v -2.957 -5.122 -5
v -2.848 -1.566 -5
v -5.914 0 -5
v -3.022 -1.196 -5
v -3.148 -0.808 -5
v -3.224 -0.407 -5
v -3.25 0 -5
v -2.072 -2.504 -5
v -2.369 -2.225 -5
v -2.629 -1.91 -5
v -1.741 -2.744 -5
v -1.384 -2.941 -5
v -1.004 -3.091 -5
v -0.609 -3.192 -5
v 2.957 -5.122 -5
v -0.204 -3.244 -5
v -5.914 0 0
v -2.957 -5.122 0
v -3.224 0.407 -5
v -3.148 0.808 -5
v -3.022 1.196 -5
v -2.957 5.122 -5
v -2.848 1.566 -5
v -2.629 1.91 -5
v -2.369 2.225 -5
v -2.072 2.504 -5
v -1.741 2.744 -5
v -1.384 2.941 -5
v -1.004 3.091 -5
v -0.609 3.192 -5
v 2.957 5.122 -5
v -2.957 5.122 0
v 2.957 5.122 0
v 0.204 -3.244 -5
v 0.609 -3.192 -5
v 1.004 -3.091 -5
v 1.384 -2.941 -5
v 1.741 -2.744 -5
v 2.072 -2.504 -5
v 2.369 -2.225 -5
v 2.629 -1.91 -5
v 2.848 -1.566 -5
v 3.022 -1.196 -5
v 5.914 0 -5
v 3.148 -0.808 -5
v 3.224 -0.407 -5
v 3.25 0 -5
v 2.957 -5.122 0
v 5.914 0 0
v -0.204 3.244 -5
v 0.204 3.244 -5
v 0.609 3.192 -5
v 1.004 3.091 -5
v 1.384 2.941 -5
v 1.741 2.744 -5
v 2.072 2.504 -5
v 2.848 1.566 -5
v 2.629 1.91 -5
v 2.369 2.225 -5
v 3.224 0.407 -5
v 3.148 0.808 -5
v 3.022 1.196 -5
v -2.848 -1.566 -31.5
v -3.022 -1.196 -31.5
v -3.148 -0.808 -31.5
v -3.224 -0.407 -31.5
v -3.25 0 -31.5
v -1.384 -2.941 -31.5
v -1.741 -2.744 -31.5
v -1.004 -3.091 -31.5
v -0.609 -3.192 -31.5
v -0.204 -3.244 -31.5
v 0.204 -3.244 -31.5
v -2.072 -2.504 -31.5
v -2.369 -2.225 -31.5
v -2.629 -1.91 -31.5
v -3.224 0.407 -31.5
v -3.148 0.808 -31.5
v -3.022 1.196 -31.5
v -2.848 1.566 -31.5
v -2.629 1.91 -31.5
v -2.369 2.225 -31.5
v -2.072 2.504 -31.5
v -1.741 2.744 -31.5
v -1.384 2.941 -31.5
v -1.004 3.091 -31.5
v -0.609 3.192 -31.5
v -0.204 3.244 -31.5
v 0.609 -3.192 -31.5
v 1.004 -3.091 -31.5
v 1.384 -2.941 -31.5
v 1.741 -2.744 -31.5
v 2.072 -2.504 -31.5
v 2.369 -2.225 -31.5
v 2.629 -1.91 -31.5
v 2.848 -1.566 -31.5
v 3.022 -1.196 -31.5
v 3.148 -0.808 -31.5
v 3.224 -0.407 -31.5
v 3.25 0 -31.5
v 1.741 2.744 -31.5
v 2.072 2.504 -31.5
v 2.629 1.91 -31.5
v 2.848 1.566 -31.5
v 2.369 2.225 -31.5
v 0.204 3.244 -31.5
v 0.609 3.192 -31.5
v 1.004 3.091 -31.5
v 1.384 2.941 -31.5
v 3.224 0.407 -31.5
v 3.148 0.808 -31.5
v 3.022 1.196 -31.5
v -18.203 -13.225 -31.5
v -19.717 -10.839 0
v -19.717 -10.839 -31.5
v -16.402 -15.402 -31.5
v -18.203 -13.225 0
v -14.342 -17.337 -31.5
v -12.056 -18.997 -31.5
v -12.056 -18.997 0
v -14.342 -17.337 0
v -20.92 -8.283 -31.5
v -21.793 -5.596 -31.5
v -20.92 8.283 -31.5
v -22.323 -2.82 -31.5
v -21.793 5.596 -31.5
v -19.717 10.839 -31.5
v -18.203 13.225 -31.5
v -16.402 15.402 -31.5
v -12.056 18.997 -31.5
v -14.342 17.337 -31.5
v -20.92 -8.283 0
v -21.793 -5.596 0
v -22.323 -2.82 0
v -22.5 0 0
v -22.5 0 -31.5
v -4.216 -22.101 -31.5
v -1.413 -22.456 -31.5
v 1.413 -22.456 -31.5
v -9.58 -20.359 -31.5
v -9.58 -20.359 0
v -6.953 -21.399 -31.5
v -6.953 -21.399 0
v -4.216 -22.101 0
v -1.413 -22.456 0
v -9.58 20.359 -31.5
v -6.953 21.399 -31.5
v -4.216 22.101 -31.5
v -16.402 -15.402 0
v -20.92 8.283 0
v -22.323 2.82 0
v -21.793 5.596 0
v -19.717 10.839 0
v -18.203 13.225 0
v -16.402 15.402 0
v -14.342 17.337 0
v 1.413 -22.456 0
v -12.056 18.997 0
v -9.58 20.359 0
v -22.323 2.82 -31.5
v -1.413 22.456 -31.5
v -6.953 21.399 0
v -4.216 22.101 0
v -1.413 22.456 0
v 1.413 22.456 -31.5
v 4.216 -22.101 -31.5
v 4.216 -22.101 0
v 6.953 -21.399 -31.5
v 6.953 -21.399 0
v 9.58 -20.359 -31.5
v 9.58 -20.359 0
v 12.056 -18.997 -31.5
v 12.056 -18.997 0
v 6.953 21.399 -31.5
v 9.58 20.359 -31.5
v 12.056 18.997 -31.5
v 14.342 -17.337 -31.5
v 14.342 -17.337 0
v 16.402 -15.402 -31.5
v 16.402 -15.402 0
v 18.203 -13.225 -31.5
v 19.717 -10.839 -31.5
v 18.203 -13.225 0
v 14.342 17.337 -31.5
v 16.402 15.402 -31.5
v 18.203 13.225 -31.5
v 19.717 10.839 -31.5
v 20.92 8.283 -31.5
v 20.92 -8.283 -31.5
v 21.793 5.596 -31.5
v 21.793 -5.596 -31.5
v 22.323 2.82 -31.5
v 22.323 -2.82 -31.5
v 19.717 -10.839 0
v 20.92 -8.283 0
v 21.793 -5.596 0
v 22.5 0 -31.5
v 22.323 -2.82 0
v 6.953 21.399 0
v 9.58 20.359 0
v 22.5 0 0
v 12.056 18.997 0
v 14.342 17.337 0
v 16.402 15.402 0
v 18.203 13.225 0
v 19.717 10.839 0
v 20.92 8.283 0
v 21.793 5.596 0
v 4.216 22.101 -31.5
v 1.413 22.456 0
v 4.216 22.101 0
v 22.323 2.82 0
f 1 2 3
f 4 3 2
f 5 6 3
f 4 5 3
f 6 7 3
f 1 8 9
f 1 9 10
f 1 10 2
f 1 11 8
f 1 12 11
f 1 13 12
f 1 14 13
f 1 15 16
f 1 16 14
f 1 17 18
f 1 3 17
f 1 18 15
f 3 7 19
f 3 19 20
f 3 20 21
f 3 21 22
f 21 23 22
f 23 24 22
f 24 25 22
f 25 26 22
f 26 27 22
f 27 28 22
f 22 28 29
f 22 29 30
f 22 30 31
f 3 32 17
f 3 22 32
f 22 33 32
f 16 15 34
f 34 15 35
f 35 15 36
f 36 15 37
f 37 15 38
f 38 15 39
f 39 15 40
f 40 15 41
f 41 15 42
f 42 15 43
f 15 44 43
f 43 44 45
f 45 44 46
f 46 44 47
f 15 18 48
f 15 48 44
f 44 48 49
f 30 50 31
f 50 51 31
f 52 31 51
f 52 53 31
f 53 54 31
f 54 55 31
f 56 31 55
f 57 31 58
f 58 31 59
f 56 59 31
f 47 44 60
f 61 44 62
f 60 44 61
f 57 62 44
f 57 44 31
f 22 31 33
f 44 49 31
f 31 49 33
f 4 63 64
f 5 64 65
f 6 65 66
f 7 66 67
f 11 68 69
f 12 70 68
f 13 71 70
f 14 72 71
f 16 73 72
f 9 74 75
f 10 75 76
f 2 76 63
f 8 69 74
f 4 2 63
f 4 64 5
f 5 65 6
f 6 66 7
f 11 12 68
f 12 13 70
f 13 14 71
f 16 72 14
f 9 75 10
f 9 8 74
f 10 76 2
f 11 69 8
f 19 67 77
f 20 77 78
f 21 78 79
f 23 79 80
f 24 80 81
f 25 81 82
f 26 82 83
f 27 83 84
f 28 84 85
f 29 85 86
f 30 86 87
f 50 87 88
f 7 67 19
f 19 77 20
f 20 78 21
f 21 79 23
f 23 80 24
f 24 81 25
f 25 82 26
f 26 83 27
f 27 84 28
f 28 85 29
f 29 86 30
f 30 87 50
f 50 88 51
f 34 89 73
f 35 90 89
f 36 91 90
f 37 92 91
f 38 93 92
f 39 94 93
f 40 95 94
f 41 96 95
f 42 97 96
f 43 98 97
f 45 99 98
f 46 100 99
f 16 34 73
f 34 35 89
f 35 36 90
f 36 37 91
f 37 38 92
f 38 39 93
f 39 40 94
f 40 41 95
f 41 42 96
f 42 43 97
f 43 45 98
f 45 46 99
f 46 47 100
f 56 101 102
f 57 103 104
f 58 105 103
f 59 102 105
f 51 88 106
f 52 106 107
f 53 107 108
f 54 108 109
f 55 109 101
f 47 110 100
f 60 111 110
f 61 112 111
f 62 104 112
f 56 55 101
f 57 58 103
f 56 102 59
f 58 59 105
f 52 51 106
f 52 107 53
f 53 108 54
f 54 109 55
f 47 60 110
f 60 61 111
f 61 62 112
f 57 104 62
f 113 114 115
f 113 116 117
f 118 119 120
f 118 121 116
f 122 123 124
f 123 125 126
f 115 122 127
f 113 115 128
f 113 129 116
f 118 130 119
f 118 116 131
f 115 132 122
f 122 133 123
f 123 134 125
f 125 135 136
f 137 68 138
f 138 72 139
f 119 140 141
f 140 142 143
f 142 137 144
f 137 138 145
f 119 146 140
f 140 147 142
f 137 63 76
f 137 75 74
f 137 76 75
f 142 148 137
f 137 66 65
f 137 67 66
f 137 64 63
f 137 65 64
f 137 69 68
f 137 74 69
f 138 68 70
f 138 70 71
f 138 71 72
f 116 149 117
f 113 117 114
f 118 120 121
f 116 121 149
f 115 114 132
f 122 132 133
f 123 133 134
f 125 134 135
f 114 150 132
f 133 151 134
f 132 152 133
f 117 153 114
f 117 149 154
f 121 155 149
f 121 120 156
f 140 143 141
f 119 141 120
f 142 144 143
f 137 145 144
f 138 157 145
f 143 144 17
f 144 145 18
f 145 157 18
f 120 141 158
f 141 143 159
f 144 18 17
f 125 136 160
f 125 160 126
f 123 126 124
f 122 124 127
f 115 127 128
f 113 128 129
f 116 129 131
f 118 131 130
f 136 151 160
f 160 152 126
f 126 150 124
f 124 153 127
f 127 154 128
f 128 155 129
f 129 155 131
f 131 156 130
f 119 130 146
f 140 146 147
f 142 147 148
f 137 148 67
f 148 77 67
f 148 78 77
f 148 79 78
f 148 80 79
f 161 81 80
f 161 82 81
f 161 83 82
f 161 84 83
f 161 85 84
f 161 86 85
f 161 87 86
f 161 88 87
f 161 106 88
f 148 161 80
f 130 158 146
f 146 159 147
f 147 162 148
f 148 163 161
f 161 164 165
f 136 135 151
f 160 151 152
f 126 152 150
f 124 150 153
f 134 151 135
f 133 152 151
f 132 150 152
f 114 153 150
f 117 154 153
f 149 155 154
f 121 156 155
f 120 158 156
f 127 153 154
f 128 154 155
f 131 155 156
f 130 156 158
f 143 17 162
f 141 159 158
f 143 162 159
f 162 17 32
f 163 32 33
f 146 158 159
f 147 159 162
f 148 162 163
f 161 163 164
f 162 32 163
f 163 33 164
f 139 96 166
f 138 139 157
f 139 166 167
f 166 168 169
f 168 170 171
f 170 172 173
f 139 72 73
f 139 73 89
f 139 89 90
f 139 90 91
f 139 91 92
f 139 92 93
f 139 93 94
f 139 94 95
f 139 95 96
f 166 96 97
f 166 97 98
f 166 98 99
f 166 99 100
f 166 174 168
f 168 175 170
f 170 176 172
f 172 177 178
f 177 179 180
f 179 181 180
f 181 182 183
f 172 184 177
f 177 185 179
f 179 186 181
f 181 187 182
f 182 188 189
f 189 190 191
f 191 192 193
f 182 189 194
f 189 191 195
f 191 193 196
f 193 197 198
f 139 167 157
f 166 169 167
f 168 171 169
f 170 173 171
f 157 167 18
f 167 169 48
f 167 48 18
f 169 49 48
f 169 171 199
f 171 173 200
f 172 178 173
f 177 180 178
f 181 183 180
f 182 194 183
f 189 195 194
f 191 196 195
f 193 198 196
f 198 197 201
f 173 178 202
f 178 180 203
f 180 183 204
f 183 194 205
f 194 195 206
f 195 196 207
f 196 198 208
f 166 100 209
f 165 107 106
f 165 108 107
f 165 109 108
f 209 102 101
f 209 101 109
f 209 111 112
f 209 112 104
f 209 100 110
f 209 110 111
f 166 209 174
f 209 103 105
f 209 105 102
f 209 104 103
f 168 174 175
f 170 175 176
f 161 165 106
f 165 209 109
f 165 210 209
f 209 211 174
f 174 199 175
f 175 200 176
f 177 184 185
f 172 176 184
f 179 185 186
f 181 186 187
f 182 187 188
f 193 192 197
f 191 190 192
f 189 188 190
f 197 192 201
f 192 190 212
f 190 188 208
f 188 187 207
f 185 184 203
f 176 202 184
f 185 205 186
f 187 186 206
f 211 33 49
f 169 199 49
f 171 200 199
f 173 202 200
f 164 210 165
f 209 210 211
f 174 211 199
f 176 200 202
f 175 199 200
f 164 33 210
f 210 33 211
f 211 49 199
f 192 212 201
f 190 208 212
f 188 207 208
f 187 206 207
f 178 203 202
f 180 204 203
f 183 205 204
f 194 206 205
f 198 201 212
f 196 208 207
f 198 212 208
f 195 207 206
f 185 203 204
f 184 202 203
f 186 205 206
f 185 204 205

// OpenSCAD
$fn = 50;

difference() {
	union() {
		translate(v = [0, 0, -31.5]) {
			cylinder(h = 31.5, r = 22.5);
		}
	}
	union() {
		translate(v = [0, 0, 0]) {
			rotate(a = [0, 0, 0]) {
				difference() {
					union() {
						translate(v = [0, 0, -5]) {
							linear_extrude(height = 5) {
								polygon(points = [[5.914249999999999, 0.0], [2.957125, 5.1218907443321156], [-2.9571249999999982, 5.1218907443321156], [-5.914249999999999, 7.242867331857232e-16], [-2.9571250000000022, -5.121890744332115], [2.9571249999999956, -5.121890744332118]]);
							}
						}
					}
					union();
				}
			}
		}
		#translate(v = [0, 0, -100.0]) {
			cylinder(h = 200, r = 3.25);
		}
	}
}
